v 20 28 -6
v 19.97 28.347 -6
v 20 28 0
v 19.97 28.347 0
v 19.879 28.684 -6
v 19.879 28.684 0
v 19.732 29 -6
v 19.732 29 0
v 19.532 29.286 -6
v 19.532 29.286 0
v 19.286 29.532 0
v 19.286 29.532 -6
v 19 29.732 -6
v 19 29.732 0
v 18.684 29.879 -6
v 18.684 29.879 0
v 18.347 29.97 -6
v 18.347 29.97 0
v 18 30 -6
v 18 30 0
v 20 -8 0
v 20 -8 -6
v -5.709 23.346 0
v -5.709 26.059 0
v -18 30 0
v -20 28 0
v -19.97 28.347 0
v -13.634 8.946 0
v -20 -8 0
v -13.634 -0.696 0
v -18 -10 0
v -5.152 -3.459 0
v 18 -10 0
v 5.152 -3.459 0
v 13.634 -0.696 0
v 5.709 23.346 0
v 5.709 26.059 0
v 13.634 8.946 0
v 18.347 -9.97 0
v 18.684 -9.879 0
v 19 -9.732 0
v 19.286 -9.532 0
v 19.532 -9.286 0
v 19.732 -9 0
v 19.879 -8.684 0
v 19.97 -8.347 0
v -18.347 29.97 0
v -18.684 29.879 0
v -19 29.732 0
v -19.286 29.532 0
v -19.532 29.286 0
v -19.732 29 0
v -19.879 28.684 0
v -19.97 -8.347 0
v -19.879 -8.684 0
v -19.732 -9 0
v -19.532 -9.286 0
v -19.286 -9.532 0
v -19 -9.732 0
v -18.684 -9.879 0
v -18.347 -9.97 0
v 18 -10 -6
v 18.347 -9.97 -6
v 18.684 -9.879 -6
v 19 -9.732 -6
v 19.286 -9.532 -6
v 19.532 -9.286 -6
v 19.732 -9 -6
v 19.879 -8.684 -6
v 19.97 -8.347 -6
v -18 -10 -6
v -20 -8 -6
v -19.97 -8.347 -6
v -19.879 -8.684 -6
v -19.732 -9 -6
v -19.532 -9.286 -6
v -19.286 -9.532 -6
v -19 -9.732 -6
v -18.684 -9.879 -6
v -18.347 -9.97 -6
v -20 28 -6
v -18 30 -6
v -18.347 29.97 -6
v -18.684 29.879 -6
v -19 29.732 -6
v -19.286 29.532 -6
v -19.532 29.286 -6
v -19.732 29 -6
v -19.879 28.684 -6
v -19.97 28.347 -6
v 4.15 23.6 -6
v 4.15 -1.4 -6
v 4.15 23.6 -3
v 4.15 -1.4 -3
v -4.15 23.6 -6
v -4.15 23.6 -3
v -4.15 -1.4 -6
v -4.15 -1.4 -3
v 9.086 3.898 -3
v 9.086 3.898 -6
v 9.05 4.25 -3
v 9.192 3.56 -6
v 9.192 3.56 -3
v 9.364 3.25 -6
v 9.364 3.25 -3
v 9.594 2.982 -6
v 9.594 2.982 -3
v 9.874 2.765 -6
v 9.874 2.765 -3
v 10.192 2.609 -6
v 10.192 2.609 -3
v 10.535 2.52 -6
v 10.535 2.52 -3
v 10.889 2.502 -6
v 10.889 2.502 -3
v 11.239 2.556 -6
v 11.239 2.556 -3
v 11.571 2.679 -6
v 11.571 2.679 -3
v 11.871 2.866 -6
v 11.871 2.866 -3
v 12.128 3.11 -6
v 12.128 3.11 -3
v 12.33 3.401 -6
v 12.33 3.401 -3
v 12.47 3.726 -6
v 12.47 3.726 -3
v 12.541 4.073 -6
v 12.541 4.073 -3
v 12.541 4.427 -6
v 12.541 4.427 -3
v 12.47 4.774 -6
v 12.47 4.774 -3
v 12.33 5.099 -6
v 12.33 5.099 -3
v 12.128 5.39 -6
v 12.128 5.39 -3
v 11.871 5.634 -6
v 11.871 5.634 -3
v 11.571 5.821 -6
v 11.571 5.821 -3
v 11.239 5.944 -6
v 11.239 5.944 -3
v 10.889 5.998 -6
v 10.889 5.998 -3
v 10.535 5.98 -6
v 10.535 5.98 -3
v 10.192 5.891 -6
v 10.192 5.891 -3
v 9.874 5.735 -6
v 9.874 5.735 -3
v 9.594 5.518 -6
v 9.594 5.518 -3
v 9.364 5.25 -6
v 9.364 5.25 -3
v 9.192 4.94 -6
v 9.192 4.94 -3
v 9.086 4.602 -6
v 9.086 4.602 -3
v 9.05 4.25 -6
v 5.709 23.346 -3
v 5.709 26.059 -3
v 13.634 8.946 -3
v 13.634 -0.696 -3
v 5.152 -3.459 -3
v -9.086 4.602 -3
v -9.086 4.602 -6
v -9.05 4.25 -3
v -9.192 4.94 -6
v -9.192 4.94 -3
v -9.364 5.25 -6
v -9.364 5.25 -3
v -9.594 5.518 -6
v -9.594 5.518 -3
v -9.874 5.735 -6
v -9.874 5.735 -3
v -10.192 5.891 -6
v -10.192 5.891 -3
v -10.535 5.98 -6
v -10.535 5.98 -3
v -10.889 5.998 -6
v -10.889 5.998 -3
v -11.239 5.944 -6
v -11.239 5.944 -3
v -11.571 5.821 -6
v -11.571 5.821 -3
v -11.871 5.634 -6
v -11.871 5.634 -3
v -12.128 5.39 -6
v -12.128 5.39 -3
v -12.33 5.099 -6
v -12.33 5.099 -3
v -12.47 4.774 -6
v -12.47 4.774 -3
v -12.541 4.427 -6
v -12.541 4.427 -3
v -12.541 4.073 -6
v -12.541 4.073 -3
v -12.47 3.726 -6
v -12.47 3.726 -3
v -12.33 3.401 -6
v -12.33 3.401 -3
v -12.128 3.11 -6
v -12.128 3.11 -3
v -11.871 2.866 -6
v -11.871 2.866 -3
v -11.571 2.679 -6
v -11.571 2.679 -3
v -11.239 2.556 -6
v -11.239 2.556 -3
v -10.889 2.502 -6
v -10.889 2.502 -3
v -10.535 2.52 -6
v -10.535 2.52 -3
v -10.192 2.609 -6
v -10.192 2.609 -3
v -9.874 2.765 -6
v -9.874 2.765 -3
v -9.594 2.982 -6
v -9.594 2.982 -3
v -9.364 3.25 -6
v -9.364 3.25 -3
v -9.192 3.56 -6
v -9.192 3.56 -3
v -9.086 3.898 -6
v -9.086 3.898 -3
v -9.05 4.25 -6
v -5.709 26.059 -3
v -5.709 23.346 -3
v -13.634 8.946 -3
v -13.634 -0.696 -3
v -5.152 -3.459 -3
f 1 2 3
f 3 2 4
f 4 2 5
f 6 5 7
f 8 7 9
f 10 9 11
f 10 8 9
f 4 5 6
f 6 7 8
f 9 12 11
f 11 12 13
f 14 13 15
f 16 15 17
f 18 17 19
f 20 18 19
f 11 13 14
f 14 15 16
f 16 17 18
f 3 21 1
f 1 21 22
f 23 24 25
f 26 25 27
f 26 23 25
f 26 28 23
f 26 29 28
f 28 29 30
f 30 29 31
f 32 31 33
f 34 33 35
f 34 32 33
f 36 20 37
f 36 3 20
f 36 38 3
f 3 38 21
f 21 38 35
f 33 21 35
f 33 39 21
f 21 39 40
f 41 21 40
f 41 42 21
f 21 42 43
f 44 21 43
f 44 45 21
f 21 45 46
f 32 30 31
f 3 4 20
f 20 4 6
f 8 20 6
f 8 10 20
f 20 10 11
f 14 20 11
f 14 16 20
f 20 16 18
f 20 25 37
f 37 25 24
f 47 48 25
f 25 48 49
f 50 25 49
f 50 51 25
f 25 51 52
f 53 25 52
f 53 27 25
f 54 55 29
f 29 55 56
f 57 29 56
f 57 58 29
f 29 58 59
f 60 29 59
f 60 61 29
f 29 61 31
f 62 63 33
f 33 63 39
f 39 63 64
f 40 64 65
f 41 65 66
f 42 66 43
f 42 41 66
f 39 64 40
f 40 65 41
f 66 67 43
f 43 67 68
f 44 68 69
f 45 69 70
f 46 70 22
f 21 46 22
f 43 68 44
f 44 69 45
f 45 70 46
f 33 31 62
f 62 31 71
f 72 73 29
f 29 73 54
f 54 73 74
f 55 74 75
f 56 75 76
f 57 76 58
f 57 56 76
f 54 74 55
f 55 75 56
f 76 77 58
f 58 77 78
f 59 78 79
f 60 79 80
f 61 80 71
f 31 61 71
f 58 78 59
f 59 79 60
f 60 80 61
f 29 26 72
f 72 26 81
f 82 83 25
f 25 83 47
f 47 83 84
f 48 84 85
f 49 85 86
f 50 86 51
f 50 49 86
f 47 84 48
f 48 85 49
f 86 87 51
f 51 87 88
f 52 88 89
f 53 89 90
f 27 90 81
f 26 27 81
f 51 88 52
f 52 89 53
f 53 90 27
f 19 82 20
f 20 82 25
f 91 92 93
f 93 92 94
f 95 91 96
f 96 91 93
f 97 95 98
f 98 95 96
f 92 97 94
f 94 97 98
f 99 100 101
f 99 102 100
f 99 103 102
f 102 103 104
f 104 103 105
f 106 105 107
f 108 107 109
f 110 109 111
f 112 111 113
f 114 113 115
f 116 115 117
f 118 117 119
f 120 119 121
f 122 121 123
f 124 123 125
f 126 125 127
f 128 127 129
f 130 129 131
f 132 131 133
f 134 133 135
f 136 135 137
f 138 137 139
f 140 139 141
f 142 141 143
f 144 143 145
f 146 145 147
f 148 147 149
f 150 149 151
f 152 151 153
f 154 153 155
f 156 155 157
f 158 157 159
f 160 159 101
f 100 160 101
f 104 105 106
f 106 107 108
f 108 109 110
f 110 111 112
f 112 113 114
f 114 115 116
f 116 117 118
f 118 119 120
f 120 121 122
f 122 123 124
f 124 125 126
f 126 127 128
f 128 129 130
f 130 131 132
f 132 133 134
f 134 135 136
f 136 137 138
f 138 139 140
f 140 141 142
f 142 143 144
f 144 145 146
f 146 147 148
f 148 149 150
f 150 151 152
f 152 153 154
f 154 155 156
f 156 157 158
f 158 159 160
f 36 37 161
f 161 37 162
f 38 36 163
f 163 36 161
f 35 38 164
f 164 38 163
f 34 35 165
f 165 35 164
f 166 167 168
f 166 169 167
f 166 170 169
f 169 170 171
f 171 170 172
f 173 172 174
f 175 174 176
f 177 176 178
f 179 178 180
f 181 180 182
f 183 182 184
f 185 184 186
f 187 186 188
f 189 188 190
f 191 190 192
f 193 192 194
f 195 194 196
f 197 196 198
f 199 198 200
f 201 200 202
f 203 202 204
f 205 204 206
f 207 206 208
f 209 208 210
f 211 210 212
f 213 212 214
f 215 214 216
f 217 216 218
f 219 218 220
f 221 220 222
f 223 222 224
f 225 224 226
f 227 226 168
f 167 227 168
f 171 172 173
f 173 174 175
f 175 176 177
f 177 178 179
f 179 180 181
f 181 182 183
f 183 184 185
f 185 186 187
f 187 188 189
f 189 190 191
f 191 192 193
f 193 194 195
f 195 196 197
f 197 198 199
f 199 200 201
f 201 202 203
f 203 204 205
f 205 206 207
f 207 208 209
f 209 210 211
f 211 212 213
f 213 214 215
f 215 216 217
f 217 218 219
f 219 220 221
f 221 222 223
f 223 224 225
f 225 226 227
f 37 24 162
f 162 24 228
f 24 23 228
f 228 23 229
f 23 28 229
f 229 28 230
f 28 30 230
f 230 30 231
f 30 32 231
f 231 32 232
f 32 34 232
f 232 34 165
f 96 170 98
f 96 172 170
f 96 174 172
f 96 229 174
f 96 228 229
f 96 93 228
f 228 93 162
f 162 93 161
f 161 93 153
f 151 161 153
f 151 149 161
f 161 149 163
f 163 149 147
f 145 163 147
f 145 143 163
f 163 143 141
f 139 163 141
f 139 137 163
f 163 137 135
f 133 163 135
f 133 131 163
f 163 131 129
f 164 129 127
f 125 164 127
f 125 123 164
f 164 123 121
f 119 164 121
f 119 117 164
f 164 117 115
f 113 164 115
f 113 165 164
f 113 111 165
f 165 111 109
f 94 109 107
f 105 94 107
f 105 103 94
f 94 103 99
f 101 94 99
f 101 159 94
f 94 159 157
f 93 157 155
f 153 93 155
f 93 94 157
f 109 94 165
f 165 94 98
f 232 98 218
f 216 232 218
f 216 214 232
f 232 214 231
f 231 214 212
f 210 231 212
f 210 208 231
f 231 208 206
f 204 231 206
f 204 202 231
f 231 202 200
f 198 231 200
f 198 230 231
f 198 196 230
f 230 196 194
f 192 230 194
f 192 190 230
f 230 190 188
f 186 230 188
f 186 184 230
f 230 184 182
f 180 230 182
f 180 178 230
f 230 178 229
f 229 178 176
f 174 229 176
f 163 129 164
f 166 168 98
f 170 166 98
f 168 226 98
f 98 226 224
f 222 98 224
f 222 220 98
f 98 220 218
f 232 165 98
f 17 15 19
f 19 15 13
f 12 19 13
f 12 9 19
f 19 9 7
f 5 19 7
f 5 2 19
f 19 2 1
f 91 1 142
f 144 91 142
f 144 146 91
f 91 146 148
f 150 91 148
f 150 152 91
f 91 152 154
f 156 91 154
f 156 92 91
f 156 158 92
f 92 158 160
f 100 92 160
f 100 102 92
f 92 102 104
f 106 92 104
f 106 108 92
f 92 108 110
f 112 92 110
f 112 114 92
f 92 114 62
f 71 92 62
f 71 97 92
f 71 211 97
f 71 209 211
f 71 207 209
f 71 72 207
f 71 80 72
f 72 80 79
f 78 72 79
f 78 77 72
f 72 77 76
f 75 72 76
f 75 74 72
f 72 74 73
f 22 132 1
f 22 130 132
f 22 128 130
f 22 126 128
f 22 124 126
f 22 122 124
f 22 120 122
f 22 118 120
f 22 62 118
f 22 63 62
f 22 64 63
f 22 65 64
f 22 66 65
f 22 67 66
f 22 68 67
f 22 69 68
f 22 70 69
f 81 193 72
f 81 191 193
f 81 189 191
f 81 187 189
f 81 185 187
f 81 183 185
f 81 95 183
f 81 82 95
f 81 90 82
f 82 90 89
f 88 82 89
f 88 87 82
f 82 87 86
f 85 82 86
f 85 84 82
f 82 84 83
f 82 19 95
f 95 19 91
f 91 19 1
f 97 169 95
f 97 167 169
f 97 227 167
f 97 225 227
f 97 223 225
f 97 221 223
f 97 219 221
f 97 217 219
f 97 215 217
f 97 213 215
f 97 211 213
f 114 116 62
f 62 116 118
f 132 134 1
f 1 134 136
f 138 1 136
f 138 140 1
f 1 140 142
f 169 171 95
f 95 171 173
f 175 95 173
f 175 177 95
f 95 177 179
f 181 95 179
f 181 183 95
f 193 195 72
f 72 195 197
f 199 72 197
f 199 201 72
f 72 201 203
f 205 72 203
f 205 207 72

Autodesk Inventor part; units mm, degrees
ref_plane "YZ Plane" through (0, 0, 0) normal (1, 0, 0) x (0, 1, 0)
ref_plane "XZ Plane" through (0, 0, 0) normal (0, 1, 0) x (-1, 0, 0)
ref_plane "XY Plane" through (0, 0, 0) normal (0, 0, 1) x (1, 0, 0)
sketch "Sketch1" plane through (0, 0, 0) normal (0, 0, 1) x (1, 0, 0)
  line L0 (-5, -2.5) -> (5, -2.5) construction
  line L1 (5, -2.5) -> (12.675, 0) construction
  line L2 (-5, -2.5) -> (-12.675, 0)
  line L3 (12.675, 0) -> (-12.675, 0) construction
  line L4 (12.675, 0) -> (12.675, 8.7) construction
  line L5 (-12.675, 0) -> (-12.675, 8.7)
  line L6 (-12.675, 8.7) -> (-4.75, 23.1)
  line L7 (-4.75, 23.1) -> (-4.75, 25.1)
  line L8 (-4.75, 25.1) -> (4.75, 25.1) construction
  line L9 (4.75, 25.1) -> (4.75, 23.1) construction
  line L10 (4.75, 23.1) -> (12.675, 8.7) construction
  line L11 (0, -9.3621) -> (0, 31.9621) projected
  line L12 (0, 25.1) -> (0, -2.5)
  circle A0 centre (-10.8, 4.25) radius 1.25
  line L13 (-10.8, 4.25) -> (0, 4.25) construction
  line L14 (-4.75, 25.1) -> (0, 25.1)
  line L15 (-5, -2.5) -> (0, -2.5)
  line L16 (-5.7087, 23.3464) -> (-13.6337, 8.9464)
  line L17 (-13.6337, 8.9464) -> (-13.6337, -0.696)
  line L18 (-13.6337, -0.696) -> (-5.1522, -3.4587)
  line L19 (-5.1522, -3.4587) -> (0.9587, -3.4587) construction
  line L20 (0.9587, -3.4587) -> (0.9587, 26.0587) construction
  line L21 (0.9587, 26.0587) -> (-5.7087, 26.0587) construction
  line L22 (-5.7087, 26.0587) -> (-5.7087, 23.3464)
  line L23 (0, -2.5) -> (0, -3.4587)
  line L24 (0, 25.1) -> (0, 26.0587)
  line L25 (0, -3.4587) -> (-5.1522, -3.4587)
  line L26 (0, 26.0587) -> (-5.7087, 26.0587)
  point P0 (0, 0)
  point P1 (0, 0)
  dimension "d0" = 10
  dimension "d1" = 25.35
  dimension "d2" = 2.5
  dimension "d3" = 8.7
  dimension "d4" = 27.6
  dimension "d6" = 2
  dimension "d7" = 9.5
  dimension "d42" = 2.5
  dimension "d43" = 10.8
  dimension "d44" = 6.75
  dimension "d53" = 0.9587
sketch "Sketch8" plane through (0, 0, 0) normal (0, 0, 1) x (1, 0, 0)
  line L0 (-20, 30) -> (20, 30)
  line L1 (20, 30) -> (20, -10)
  line L2 (20, -10) -> (-20, -10)
  line L3 (-20, -10) -> (-20, 30)
  point P0 (0, 0)
  point P1 (0, -10)
  dimension "d45" = 40
  dimension "d46" = 10
extrude "MainBlock" add sketch "Sketch8" against normal blind 6
extrude "CartridgeCutout" cut sketch "Sketch1" against normal blind 3
sketch "Sketch10" plane through (-10.8, 4.25, 0) normal (0, 0, 1) x (1, 0, 0)
  circle A0 centre (0, 0) radius 1.25 projected
  circle A1 centre (0, 0) radius 1.75
  point P0 (10.8, -4.25)
  dimension "d56" = 0.5
extrude "PinHole" cut sketch "Sketch10" against normal through all contours A0 | A1
mirror "Mirror3" about plane through (0, 26.0587, 0) normal (-1, 0, 0) of "CartridgeCutout", "PinHole"
sketch "Sketch12" plane through (0, 0, -3) normal (0, 0, 1) x (1, 0, 0)
  circle A0 centre (10.8, 4.25) radius 1.75 projected
  circle A1 centre (-10.8, 4.25) radius 1.75 projected
  line L0 (5.7087, 26.0587) -> (-5.7087, 26.0587) projected
  line L1 (-5.7087, 23.3464) -> (-5.7087, 26.0587) projected
  line L2 (-13.6337, 8.9464) -> (-5.7087, 23.3464) projected
  line L3 (-13.6337, -0.696) -> (-13.6337, 8.9464) projected
  line L4 (-5.1522, -3.4587) -> (-13.6337, -0.696) projected
  line L5 (5.1522, -3.4587) -> (-5.1522, -3.4587) projected
  line L6 (5.1522, -3.4587) -> (13.6337, -0.696) projected
  line L7 (13.6337, -0.696) -> (13.6337, 8.9464) projected
  line L8 (13.6337, 8.9464) -> (5.7087, 23.3464) projected
  line L9 (5.7087, 23.3464) -> (5.7087, 26.0587) projected
  line L10 (-4.15, 23.6) -> (4.15, 23.6)
  line L11 (4.15, 23.6) -> (4.15, -1.4)
  line L12 (4.15, -1.4) -> (-4.15, -1.4)
  line L13 (-4.15, -1.4) -> (-4.15, 23.6)
  point P0 (0, 0)
  point P1 (0, -1.4)
  dimension "d59" = 8.3
  dimension "d60" = 25
  dimension "d61" = 1.4
extrude "Extrusion12" cut sketch "Sketch12" against normal through all contours L10 L11 L12 L13
fillet "Fillet1" radius 2 4 edges at (-20, 30, -3) (-20, -10, -3) (20, -10, -3) (20, 30, -3)
properties part number "InkjetHolder"
